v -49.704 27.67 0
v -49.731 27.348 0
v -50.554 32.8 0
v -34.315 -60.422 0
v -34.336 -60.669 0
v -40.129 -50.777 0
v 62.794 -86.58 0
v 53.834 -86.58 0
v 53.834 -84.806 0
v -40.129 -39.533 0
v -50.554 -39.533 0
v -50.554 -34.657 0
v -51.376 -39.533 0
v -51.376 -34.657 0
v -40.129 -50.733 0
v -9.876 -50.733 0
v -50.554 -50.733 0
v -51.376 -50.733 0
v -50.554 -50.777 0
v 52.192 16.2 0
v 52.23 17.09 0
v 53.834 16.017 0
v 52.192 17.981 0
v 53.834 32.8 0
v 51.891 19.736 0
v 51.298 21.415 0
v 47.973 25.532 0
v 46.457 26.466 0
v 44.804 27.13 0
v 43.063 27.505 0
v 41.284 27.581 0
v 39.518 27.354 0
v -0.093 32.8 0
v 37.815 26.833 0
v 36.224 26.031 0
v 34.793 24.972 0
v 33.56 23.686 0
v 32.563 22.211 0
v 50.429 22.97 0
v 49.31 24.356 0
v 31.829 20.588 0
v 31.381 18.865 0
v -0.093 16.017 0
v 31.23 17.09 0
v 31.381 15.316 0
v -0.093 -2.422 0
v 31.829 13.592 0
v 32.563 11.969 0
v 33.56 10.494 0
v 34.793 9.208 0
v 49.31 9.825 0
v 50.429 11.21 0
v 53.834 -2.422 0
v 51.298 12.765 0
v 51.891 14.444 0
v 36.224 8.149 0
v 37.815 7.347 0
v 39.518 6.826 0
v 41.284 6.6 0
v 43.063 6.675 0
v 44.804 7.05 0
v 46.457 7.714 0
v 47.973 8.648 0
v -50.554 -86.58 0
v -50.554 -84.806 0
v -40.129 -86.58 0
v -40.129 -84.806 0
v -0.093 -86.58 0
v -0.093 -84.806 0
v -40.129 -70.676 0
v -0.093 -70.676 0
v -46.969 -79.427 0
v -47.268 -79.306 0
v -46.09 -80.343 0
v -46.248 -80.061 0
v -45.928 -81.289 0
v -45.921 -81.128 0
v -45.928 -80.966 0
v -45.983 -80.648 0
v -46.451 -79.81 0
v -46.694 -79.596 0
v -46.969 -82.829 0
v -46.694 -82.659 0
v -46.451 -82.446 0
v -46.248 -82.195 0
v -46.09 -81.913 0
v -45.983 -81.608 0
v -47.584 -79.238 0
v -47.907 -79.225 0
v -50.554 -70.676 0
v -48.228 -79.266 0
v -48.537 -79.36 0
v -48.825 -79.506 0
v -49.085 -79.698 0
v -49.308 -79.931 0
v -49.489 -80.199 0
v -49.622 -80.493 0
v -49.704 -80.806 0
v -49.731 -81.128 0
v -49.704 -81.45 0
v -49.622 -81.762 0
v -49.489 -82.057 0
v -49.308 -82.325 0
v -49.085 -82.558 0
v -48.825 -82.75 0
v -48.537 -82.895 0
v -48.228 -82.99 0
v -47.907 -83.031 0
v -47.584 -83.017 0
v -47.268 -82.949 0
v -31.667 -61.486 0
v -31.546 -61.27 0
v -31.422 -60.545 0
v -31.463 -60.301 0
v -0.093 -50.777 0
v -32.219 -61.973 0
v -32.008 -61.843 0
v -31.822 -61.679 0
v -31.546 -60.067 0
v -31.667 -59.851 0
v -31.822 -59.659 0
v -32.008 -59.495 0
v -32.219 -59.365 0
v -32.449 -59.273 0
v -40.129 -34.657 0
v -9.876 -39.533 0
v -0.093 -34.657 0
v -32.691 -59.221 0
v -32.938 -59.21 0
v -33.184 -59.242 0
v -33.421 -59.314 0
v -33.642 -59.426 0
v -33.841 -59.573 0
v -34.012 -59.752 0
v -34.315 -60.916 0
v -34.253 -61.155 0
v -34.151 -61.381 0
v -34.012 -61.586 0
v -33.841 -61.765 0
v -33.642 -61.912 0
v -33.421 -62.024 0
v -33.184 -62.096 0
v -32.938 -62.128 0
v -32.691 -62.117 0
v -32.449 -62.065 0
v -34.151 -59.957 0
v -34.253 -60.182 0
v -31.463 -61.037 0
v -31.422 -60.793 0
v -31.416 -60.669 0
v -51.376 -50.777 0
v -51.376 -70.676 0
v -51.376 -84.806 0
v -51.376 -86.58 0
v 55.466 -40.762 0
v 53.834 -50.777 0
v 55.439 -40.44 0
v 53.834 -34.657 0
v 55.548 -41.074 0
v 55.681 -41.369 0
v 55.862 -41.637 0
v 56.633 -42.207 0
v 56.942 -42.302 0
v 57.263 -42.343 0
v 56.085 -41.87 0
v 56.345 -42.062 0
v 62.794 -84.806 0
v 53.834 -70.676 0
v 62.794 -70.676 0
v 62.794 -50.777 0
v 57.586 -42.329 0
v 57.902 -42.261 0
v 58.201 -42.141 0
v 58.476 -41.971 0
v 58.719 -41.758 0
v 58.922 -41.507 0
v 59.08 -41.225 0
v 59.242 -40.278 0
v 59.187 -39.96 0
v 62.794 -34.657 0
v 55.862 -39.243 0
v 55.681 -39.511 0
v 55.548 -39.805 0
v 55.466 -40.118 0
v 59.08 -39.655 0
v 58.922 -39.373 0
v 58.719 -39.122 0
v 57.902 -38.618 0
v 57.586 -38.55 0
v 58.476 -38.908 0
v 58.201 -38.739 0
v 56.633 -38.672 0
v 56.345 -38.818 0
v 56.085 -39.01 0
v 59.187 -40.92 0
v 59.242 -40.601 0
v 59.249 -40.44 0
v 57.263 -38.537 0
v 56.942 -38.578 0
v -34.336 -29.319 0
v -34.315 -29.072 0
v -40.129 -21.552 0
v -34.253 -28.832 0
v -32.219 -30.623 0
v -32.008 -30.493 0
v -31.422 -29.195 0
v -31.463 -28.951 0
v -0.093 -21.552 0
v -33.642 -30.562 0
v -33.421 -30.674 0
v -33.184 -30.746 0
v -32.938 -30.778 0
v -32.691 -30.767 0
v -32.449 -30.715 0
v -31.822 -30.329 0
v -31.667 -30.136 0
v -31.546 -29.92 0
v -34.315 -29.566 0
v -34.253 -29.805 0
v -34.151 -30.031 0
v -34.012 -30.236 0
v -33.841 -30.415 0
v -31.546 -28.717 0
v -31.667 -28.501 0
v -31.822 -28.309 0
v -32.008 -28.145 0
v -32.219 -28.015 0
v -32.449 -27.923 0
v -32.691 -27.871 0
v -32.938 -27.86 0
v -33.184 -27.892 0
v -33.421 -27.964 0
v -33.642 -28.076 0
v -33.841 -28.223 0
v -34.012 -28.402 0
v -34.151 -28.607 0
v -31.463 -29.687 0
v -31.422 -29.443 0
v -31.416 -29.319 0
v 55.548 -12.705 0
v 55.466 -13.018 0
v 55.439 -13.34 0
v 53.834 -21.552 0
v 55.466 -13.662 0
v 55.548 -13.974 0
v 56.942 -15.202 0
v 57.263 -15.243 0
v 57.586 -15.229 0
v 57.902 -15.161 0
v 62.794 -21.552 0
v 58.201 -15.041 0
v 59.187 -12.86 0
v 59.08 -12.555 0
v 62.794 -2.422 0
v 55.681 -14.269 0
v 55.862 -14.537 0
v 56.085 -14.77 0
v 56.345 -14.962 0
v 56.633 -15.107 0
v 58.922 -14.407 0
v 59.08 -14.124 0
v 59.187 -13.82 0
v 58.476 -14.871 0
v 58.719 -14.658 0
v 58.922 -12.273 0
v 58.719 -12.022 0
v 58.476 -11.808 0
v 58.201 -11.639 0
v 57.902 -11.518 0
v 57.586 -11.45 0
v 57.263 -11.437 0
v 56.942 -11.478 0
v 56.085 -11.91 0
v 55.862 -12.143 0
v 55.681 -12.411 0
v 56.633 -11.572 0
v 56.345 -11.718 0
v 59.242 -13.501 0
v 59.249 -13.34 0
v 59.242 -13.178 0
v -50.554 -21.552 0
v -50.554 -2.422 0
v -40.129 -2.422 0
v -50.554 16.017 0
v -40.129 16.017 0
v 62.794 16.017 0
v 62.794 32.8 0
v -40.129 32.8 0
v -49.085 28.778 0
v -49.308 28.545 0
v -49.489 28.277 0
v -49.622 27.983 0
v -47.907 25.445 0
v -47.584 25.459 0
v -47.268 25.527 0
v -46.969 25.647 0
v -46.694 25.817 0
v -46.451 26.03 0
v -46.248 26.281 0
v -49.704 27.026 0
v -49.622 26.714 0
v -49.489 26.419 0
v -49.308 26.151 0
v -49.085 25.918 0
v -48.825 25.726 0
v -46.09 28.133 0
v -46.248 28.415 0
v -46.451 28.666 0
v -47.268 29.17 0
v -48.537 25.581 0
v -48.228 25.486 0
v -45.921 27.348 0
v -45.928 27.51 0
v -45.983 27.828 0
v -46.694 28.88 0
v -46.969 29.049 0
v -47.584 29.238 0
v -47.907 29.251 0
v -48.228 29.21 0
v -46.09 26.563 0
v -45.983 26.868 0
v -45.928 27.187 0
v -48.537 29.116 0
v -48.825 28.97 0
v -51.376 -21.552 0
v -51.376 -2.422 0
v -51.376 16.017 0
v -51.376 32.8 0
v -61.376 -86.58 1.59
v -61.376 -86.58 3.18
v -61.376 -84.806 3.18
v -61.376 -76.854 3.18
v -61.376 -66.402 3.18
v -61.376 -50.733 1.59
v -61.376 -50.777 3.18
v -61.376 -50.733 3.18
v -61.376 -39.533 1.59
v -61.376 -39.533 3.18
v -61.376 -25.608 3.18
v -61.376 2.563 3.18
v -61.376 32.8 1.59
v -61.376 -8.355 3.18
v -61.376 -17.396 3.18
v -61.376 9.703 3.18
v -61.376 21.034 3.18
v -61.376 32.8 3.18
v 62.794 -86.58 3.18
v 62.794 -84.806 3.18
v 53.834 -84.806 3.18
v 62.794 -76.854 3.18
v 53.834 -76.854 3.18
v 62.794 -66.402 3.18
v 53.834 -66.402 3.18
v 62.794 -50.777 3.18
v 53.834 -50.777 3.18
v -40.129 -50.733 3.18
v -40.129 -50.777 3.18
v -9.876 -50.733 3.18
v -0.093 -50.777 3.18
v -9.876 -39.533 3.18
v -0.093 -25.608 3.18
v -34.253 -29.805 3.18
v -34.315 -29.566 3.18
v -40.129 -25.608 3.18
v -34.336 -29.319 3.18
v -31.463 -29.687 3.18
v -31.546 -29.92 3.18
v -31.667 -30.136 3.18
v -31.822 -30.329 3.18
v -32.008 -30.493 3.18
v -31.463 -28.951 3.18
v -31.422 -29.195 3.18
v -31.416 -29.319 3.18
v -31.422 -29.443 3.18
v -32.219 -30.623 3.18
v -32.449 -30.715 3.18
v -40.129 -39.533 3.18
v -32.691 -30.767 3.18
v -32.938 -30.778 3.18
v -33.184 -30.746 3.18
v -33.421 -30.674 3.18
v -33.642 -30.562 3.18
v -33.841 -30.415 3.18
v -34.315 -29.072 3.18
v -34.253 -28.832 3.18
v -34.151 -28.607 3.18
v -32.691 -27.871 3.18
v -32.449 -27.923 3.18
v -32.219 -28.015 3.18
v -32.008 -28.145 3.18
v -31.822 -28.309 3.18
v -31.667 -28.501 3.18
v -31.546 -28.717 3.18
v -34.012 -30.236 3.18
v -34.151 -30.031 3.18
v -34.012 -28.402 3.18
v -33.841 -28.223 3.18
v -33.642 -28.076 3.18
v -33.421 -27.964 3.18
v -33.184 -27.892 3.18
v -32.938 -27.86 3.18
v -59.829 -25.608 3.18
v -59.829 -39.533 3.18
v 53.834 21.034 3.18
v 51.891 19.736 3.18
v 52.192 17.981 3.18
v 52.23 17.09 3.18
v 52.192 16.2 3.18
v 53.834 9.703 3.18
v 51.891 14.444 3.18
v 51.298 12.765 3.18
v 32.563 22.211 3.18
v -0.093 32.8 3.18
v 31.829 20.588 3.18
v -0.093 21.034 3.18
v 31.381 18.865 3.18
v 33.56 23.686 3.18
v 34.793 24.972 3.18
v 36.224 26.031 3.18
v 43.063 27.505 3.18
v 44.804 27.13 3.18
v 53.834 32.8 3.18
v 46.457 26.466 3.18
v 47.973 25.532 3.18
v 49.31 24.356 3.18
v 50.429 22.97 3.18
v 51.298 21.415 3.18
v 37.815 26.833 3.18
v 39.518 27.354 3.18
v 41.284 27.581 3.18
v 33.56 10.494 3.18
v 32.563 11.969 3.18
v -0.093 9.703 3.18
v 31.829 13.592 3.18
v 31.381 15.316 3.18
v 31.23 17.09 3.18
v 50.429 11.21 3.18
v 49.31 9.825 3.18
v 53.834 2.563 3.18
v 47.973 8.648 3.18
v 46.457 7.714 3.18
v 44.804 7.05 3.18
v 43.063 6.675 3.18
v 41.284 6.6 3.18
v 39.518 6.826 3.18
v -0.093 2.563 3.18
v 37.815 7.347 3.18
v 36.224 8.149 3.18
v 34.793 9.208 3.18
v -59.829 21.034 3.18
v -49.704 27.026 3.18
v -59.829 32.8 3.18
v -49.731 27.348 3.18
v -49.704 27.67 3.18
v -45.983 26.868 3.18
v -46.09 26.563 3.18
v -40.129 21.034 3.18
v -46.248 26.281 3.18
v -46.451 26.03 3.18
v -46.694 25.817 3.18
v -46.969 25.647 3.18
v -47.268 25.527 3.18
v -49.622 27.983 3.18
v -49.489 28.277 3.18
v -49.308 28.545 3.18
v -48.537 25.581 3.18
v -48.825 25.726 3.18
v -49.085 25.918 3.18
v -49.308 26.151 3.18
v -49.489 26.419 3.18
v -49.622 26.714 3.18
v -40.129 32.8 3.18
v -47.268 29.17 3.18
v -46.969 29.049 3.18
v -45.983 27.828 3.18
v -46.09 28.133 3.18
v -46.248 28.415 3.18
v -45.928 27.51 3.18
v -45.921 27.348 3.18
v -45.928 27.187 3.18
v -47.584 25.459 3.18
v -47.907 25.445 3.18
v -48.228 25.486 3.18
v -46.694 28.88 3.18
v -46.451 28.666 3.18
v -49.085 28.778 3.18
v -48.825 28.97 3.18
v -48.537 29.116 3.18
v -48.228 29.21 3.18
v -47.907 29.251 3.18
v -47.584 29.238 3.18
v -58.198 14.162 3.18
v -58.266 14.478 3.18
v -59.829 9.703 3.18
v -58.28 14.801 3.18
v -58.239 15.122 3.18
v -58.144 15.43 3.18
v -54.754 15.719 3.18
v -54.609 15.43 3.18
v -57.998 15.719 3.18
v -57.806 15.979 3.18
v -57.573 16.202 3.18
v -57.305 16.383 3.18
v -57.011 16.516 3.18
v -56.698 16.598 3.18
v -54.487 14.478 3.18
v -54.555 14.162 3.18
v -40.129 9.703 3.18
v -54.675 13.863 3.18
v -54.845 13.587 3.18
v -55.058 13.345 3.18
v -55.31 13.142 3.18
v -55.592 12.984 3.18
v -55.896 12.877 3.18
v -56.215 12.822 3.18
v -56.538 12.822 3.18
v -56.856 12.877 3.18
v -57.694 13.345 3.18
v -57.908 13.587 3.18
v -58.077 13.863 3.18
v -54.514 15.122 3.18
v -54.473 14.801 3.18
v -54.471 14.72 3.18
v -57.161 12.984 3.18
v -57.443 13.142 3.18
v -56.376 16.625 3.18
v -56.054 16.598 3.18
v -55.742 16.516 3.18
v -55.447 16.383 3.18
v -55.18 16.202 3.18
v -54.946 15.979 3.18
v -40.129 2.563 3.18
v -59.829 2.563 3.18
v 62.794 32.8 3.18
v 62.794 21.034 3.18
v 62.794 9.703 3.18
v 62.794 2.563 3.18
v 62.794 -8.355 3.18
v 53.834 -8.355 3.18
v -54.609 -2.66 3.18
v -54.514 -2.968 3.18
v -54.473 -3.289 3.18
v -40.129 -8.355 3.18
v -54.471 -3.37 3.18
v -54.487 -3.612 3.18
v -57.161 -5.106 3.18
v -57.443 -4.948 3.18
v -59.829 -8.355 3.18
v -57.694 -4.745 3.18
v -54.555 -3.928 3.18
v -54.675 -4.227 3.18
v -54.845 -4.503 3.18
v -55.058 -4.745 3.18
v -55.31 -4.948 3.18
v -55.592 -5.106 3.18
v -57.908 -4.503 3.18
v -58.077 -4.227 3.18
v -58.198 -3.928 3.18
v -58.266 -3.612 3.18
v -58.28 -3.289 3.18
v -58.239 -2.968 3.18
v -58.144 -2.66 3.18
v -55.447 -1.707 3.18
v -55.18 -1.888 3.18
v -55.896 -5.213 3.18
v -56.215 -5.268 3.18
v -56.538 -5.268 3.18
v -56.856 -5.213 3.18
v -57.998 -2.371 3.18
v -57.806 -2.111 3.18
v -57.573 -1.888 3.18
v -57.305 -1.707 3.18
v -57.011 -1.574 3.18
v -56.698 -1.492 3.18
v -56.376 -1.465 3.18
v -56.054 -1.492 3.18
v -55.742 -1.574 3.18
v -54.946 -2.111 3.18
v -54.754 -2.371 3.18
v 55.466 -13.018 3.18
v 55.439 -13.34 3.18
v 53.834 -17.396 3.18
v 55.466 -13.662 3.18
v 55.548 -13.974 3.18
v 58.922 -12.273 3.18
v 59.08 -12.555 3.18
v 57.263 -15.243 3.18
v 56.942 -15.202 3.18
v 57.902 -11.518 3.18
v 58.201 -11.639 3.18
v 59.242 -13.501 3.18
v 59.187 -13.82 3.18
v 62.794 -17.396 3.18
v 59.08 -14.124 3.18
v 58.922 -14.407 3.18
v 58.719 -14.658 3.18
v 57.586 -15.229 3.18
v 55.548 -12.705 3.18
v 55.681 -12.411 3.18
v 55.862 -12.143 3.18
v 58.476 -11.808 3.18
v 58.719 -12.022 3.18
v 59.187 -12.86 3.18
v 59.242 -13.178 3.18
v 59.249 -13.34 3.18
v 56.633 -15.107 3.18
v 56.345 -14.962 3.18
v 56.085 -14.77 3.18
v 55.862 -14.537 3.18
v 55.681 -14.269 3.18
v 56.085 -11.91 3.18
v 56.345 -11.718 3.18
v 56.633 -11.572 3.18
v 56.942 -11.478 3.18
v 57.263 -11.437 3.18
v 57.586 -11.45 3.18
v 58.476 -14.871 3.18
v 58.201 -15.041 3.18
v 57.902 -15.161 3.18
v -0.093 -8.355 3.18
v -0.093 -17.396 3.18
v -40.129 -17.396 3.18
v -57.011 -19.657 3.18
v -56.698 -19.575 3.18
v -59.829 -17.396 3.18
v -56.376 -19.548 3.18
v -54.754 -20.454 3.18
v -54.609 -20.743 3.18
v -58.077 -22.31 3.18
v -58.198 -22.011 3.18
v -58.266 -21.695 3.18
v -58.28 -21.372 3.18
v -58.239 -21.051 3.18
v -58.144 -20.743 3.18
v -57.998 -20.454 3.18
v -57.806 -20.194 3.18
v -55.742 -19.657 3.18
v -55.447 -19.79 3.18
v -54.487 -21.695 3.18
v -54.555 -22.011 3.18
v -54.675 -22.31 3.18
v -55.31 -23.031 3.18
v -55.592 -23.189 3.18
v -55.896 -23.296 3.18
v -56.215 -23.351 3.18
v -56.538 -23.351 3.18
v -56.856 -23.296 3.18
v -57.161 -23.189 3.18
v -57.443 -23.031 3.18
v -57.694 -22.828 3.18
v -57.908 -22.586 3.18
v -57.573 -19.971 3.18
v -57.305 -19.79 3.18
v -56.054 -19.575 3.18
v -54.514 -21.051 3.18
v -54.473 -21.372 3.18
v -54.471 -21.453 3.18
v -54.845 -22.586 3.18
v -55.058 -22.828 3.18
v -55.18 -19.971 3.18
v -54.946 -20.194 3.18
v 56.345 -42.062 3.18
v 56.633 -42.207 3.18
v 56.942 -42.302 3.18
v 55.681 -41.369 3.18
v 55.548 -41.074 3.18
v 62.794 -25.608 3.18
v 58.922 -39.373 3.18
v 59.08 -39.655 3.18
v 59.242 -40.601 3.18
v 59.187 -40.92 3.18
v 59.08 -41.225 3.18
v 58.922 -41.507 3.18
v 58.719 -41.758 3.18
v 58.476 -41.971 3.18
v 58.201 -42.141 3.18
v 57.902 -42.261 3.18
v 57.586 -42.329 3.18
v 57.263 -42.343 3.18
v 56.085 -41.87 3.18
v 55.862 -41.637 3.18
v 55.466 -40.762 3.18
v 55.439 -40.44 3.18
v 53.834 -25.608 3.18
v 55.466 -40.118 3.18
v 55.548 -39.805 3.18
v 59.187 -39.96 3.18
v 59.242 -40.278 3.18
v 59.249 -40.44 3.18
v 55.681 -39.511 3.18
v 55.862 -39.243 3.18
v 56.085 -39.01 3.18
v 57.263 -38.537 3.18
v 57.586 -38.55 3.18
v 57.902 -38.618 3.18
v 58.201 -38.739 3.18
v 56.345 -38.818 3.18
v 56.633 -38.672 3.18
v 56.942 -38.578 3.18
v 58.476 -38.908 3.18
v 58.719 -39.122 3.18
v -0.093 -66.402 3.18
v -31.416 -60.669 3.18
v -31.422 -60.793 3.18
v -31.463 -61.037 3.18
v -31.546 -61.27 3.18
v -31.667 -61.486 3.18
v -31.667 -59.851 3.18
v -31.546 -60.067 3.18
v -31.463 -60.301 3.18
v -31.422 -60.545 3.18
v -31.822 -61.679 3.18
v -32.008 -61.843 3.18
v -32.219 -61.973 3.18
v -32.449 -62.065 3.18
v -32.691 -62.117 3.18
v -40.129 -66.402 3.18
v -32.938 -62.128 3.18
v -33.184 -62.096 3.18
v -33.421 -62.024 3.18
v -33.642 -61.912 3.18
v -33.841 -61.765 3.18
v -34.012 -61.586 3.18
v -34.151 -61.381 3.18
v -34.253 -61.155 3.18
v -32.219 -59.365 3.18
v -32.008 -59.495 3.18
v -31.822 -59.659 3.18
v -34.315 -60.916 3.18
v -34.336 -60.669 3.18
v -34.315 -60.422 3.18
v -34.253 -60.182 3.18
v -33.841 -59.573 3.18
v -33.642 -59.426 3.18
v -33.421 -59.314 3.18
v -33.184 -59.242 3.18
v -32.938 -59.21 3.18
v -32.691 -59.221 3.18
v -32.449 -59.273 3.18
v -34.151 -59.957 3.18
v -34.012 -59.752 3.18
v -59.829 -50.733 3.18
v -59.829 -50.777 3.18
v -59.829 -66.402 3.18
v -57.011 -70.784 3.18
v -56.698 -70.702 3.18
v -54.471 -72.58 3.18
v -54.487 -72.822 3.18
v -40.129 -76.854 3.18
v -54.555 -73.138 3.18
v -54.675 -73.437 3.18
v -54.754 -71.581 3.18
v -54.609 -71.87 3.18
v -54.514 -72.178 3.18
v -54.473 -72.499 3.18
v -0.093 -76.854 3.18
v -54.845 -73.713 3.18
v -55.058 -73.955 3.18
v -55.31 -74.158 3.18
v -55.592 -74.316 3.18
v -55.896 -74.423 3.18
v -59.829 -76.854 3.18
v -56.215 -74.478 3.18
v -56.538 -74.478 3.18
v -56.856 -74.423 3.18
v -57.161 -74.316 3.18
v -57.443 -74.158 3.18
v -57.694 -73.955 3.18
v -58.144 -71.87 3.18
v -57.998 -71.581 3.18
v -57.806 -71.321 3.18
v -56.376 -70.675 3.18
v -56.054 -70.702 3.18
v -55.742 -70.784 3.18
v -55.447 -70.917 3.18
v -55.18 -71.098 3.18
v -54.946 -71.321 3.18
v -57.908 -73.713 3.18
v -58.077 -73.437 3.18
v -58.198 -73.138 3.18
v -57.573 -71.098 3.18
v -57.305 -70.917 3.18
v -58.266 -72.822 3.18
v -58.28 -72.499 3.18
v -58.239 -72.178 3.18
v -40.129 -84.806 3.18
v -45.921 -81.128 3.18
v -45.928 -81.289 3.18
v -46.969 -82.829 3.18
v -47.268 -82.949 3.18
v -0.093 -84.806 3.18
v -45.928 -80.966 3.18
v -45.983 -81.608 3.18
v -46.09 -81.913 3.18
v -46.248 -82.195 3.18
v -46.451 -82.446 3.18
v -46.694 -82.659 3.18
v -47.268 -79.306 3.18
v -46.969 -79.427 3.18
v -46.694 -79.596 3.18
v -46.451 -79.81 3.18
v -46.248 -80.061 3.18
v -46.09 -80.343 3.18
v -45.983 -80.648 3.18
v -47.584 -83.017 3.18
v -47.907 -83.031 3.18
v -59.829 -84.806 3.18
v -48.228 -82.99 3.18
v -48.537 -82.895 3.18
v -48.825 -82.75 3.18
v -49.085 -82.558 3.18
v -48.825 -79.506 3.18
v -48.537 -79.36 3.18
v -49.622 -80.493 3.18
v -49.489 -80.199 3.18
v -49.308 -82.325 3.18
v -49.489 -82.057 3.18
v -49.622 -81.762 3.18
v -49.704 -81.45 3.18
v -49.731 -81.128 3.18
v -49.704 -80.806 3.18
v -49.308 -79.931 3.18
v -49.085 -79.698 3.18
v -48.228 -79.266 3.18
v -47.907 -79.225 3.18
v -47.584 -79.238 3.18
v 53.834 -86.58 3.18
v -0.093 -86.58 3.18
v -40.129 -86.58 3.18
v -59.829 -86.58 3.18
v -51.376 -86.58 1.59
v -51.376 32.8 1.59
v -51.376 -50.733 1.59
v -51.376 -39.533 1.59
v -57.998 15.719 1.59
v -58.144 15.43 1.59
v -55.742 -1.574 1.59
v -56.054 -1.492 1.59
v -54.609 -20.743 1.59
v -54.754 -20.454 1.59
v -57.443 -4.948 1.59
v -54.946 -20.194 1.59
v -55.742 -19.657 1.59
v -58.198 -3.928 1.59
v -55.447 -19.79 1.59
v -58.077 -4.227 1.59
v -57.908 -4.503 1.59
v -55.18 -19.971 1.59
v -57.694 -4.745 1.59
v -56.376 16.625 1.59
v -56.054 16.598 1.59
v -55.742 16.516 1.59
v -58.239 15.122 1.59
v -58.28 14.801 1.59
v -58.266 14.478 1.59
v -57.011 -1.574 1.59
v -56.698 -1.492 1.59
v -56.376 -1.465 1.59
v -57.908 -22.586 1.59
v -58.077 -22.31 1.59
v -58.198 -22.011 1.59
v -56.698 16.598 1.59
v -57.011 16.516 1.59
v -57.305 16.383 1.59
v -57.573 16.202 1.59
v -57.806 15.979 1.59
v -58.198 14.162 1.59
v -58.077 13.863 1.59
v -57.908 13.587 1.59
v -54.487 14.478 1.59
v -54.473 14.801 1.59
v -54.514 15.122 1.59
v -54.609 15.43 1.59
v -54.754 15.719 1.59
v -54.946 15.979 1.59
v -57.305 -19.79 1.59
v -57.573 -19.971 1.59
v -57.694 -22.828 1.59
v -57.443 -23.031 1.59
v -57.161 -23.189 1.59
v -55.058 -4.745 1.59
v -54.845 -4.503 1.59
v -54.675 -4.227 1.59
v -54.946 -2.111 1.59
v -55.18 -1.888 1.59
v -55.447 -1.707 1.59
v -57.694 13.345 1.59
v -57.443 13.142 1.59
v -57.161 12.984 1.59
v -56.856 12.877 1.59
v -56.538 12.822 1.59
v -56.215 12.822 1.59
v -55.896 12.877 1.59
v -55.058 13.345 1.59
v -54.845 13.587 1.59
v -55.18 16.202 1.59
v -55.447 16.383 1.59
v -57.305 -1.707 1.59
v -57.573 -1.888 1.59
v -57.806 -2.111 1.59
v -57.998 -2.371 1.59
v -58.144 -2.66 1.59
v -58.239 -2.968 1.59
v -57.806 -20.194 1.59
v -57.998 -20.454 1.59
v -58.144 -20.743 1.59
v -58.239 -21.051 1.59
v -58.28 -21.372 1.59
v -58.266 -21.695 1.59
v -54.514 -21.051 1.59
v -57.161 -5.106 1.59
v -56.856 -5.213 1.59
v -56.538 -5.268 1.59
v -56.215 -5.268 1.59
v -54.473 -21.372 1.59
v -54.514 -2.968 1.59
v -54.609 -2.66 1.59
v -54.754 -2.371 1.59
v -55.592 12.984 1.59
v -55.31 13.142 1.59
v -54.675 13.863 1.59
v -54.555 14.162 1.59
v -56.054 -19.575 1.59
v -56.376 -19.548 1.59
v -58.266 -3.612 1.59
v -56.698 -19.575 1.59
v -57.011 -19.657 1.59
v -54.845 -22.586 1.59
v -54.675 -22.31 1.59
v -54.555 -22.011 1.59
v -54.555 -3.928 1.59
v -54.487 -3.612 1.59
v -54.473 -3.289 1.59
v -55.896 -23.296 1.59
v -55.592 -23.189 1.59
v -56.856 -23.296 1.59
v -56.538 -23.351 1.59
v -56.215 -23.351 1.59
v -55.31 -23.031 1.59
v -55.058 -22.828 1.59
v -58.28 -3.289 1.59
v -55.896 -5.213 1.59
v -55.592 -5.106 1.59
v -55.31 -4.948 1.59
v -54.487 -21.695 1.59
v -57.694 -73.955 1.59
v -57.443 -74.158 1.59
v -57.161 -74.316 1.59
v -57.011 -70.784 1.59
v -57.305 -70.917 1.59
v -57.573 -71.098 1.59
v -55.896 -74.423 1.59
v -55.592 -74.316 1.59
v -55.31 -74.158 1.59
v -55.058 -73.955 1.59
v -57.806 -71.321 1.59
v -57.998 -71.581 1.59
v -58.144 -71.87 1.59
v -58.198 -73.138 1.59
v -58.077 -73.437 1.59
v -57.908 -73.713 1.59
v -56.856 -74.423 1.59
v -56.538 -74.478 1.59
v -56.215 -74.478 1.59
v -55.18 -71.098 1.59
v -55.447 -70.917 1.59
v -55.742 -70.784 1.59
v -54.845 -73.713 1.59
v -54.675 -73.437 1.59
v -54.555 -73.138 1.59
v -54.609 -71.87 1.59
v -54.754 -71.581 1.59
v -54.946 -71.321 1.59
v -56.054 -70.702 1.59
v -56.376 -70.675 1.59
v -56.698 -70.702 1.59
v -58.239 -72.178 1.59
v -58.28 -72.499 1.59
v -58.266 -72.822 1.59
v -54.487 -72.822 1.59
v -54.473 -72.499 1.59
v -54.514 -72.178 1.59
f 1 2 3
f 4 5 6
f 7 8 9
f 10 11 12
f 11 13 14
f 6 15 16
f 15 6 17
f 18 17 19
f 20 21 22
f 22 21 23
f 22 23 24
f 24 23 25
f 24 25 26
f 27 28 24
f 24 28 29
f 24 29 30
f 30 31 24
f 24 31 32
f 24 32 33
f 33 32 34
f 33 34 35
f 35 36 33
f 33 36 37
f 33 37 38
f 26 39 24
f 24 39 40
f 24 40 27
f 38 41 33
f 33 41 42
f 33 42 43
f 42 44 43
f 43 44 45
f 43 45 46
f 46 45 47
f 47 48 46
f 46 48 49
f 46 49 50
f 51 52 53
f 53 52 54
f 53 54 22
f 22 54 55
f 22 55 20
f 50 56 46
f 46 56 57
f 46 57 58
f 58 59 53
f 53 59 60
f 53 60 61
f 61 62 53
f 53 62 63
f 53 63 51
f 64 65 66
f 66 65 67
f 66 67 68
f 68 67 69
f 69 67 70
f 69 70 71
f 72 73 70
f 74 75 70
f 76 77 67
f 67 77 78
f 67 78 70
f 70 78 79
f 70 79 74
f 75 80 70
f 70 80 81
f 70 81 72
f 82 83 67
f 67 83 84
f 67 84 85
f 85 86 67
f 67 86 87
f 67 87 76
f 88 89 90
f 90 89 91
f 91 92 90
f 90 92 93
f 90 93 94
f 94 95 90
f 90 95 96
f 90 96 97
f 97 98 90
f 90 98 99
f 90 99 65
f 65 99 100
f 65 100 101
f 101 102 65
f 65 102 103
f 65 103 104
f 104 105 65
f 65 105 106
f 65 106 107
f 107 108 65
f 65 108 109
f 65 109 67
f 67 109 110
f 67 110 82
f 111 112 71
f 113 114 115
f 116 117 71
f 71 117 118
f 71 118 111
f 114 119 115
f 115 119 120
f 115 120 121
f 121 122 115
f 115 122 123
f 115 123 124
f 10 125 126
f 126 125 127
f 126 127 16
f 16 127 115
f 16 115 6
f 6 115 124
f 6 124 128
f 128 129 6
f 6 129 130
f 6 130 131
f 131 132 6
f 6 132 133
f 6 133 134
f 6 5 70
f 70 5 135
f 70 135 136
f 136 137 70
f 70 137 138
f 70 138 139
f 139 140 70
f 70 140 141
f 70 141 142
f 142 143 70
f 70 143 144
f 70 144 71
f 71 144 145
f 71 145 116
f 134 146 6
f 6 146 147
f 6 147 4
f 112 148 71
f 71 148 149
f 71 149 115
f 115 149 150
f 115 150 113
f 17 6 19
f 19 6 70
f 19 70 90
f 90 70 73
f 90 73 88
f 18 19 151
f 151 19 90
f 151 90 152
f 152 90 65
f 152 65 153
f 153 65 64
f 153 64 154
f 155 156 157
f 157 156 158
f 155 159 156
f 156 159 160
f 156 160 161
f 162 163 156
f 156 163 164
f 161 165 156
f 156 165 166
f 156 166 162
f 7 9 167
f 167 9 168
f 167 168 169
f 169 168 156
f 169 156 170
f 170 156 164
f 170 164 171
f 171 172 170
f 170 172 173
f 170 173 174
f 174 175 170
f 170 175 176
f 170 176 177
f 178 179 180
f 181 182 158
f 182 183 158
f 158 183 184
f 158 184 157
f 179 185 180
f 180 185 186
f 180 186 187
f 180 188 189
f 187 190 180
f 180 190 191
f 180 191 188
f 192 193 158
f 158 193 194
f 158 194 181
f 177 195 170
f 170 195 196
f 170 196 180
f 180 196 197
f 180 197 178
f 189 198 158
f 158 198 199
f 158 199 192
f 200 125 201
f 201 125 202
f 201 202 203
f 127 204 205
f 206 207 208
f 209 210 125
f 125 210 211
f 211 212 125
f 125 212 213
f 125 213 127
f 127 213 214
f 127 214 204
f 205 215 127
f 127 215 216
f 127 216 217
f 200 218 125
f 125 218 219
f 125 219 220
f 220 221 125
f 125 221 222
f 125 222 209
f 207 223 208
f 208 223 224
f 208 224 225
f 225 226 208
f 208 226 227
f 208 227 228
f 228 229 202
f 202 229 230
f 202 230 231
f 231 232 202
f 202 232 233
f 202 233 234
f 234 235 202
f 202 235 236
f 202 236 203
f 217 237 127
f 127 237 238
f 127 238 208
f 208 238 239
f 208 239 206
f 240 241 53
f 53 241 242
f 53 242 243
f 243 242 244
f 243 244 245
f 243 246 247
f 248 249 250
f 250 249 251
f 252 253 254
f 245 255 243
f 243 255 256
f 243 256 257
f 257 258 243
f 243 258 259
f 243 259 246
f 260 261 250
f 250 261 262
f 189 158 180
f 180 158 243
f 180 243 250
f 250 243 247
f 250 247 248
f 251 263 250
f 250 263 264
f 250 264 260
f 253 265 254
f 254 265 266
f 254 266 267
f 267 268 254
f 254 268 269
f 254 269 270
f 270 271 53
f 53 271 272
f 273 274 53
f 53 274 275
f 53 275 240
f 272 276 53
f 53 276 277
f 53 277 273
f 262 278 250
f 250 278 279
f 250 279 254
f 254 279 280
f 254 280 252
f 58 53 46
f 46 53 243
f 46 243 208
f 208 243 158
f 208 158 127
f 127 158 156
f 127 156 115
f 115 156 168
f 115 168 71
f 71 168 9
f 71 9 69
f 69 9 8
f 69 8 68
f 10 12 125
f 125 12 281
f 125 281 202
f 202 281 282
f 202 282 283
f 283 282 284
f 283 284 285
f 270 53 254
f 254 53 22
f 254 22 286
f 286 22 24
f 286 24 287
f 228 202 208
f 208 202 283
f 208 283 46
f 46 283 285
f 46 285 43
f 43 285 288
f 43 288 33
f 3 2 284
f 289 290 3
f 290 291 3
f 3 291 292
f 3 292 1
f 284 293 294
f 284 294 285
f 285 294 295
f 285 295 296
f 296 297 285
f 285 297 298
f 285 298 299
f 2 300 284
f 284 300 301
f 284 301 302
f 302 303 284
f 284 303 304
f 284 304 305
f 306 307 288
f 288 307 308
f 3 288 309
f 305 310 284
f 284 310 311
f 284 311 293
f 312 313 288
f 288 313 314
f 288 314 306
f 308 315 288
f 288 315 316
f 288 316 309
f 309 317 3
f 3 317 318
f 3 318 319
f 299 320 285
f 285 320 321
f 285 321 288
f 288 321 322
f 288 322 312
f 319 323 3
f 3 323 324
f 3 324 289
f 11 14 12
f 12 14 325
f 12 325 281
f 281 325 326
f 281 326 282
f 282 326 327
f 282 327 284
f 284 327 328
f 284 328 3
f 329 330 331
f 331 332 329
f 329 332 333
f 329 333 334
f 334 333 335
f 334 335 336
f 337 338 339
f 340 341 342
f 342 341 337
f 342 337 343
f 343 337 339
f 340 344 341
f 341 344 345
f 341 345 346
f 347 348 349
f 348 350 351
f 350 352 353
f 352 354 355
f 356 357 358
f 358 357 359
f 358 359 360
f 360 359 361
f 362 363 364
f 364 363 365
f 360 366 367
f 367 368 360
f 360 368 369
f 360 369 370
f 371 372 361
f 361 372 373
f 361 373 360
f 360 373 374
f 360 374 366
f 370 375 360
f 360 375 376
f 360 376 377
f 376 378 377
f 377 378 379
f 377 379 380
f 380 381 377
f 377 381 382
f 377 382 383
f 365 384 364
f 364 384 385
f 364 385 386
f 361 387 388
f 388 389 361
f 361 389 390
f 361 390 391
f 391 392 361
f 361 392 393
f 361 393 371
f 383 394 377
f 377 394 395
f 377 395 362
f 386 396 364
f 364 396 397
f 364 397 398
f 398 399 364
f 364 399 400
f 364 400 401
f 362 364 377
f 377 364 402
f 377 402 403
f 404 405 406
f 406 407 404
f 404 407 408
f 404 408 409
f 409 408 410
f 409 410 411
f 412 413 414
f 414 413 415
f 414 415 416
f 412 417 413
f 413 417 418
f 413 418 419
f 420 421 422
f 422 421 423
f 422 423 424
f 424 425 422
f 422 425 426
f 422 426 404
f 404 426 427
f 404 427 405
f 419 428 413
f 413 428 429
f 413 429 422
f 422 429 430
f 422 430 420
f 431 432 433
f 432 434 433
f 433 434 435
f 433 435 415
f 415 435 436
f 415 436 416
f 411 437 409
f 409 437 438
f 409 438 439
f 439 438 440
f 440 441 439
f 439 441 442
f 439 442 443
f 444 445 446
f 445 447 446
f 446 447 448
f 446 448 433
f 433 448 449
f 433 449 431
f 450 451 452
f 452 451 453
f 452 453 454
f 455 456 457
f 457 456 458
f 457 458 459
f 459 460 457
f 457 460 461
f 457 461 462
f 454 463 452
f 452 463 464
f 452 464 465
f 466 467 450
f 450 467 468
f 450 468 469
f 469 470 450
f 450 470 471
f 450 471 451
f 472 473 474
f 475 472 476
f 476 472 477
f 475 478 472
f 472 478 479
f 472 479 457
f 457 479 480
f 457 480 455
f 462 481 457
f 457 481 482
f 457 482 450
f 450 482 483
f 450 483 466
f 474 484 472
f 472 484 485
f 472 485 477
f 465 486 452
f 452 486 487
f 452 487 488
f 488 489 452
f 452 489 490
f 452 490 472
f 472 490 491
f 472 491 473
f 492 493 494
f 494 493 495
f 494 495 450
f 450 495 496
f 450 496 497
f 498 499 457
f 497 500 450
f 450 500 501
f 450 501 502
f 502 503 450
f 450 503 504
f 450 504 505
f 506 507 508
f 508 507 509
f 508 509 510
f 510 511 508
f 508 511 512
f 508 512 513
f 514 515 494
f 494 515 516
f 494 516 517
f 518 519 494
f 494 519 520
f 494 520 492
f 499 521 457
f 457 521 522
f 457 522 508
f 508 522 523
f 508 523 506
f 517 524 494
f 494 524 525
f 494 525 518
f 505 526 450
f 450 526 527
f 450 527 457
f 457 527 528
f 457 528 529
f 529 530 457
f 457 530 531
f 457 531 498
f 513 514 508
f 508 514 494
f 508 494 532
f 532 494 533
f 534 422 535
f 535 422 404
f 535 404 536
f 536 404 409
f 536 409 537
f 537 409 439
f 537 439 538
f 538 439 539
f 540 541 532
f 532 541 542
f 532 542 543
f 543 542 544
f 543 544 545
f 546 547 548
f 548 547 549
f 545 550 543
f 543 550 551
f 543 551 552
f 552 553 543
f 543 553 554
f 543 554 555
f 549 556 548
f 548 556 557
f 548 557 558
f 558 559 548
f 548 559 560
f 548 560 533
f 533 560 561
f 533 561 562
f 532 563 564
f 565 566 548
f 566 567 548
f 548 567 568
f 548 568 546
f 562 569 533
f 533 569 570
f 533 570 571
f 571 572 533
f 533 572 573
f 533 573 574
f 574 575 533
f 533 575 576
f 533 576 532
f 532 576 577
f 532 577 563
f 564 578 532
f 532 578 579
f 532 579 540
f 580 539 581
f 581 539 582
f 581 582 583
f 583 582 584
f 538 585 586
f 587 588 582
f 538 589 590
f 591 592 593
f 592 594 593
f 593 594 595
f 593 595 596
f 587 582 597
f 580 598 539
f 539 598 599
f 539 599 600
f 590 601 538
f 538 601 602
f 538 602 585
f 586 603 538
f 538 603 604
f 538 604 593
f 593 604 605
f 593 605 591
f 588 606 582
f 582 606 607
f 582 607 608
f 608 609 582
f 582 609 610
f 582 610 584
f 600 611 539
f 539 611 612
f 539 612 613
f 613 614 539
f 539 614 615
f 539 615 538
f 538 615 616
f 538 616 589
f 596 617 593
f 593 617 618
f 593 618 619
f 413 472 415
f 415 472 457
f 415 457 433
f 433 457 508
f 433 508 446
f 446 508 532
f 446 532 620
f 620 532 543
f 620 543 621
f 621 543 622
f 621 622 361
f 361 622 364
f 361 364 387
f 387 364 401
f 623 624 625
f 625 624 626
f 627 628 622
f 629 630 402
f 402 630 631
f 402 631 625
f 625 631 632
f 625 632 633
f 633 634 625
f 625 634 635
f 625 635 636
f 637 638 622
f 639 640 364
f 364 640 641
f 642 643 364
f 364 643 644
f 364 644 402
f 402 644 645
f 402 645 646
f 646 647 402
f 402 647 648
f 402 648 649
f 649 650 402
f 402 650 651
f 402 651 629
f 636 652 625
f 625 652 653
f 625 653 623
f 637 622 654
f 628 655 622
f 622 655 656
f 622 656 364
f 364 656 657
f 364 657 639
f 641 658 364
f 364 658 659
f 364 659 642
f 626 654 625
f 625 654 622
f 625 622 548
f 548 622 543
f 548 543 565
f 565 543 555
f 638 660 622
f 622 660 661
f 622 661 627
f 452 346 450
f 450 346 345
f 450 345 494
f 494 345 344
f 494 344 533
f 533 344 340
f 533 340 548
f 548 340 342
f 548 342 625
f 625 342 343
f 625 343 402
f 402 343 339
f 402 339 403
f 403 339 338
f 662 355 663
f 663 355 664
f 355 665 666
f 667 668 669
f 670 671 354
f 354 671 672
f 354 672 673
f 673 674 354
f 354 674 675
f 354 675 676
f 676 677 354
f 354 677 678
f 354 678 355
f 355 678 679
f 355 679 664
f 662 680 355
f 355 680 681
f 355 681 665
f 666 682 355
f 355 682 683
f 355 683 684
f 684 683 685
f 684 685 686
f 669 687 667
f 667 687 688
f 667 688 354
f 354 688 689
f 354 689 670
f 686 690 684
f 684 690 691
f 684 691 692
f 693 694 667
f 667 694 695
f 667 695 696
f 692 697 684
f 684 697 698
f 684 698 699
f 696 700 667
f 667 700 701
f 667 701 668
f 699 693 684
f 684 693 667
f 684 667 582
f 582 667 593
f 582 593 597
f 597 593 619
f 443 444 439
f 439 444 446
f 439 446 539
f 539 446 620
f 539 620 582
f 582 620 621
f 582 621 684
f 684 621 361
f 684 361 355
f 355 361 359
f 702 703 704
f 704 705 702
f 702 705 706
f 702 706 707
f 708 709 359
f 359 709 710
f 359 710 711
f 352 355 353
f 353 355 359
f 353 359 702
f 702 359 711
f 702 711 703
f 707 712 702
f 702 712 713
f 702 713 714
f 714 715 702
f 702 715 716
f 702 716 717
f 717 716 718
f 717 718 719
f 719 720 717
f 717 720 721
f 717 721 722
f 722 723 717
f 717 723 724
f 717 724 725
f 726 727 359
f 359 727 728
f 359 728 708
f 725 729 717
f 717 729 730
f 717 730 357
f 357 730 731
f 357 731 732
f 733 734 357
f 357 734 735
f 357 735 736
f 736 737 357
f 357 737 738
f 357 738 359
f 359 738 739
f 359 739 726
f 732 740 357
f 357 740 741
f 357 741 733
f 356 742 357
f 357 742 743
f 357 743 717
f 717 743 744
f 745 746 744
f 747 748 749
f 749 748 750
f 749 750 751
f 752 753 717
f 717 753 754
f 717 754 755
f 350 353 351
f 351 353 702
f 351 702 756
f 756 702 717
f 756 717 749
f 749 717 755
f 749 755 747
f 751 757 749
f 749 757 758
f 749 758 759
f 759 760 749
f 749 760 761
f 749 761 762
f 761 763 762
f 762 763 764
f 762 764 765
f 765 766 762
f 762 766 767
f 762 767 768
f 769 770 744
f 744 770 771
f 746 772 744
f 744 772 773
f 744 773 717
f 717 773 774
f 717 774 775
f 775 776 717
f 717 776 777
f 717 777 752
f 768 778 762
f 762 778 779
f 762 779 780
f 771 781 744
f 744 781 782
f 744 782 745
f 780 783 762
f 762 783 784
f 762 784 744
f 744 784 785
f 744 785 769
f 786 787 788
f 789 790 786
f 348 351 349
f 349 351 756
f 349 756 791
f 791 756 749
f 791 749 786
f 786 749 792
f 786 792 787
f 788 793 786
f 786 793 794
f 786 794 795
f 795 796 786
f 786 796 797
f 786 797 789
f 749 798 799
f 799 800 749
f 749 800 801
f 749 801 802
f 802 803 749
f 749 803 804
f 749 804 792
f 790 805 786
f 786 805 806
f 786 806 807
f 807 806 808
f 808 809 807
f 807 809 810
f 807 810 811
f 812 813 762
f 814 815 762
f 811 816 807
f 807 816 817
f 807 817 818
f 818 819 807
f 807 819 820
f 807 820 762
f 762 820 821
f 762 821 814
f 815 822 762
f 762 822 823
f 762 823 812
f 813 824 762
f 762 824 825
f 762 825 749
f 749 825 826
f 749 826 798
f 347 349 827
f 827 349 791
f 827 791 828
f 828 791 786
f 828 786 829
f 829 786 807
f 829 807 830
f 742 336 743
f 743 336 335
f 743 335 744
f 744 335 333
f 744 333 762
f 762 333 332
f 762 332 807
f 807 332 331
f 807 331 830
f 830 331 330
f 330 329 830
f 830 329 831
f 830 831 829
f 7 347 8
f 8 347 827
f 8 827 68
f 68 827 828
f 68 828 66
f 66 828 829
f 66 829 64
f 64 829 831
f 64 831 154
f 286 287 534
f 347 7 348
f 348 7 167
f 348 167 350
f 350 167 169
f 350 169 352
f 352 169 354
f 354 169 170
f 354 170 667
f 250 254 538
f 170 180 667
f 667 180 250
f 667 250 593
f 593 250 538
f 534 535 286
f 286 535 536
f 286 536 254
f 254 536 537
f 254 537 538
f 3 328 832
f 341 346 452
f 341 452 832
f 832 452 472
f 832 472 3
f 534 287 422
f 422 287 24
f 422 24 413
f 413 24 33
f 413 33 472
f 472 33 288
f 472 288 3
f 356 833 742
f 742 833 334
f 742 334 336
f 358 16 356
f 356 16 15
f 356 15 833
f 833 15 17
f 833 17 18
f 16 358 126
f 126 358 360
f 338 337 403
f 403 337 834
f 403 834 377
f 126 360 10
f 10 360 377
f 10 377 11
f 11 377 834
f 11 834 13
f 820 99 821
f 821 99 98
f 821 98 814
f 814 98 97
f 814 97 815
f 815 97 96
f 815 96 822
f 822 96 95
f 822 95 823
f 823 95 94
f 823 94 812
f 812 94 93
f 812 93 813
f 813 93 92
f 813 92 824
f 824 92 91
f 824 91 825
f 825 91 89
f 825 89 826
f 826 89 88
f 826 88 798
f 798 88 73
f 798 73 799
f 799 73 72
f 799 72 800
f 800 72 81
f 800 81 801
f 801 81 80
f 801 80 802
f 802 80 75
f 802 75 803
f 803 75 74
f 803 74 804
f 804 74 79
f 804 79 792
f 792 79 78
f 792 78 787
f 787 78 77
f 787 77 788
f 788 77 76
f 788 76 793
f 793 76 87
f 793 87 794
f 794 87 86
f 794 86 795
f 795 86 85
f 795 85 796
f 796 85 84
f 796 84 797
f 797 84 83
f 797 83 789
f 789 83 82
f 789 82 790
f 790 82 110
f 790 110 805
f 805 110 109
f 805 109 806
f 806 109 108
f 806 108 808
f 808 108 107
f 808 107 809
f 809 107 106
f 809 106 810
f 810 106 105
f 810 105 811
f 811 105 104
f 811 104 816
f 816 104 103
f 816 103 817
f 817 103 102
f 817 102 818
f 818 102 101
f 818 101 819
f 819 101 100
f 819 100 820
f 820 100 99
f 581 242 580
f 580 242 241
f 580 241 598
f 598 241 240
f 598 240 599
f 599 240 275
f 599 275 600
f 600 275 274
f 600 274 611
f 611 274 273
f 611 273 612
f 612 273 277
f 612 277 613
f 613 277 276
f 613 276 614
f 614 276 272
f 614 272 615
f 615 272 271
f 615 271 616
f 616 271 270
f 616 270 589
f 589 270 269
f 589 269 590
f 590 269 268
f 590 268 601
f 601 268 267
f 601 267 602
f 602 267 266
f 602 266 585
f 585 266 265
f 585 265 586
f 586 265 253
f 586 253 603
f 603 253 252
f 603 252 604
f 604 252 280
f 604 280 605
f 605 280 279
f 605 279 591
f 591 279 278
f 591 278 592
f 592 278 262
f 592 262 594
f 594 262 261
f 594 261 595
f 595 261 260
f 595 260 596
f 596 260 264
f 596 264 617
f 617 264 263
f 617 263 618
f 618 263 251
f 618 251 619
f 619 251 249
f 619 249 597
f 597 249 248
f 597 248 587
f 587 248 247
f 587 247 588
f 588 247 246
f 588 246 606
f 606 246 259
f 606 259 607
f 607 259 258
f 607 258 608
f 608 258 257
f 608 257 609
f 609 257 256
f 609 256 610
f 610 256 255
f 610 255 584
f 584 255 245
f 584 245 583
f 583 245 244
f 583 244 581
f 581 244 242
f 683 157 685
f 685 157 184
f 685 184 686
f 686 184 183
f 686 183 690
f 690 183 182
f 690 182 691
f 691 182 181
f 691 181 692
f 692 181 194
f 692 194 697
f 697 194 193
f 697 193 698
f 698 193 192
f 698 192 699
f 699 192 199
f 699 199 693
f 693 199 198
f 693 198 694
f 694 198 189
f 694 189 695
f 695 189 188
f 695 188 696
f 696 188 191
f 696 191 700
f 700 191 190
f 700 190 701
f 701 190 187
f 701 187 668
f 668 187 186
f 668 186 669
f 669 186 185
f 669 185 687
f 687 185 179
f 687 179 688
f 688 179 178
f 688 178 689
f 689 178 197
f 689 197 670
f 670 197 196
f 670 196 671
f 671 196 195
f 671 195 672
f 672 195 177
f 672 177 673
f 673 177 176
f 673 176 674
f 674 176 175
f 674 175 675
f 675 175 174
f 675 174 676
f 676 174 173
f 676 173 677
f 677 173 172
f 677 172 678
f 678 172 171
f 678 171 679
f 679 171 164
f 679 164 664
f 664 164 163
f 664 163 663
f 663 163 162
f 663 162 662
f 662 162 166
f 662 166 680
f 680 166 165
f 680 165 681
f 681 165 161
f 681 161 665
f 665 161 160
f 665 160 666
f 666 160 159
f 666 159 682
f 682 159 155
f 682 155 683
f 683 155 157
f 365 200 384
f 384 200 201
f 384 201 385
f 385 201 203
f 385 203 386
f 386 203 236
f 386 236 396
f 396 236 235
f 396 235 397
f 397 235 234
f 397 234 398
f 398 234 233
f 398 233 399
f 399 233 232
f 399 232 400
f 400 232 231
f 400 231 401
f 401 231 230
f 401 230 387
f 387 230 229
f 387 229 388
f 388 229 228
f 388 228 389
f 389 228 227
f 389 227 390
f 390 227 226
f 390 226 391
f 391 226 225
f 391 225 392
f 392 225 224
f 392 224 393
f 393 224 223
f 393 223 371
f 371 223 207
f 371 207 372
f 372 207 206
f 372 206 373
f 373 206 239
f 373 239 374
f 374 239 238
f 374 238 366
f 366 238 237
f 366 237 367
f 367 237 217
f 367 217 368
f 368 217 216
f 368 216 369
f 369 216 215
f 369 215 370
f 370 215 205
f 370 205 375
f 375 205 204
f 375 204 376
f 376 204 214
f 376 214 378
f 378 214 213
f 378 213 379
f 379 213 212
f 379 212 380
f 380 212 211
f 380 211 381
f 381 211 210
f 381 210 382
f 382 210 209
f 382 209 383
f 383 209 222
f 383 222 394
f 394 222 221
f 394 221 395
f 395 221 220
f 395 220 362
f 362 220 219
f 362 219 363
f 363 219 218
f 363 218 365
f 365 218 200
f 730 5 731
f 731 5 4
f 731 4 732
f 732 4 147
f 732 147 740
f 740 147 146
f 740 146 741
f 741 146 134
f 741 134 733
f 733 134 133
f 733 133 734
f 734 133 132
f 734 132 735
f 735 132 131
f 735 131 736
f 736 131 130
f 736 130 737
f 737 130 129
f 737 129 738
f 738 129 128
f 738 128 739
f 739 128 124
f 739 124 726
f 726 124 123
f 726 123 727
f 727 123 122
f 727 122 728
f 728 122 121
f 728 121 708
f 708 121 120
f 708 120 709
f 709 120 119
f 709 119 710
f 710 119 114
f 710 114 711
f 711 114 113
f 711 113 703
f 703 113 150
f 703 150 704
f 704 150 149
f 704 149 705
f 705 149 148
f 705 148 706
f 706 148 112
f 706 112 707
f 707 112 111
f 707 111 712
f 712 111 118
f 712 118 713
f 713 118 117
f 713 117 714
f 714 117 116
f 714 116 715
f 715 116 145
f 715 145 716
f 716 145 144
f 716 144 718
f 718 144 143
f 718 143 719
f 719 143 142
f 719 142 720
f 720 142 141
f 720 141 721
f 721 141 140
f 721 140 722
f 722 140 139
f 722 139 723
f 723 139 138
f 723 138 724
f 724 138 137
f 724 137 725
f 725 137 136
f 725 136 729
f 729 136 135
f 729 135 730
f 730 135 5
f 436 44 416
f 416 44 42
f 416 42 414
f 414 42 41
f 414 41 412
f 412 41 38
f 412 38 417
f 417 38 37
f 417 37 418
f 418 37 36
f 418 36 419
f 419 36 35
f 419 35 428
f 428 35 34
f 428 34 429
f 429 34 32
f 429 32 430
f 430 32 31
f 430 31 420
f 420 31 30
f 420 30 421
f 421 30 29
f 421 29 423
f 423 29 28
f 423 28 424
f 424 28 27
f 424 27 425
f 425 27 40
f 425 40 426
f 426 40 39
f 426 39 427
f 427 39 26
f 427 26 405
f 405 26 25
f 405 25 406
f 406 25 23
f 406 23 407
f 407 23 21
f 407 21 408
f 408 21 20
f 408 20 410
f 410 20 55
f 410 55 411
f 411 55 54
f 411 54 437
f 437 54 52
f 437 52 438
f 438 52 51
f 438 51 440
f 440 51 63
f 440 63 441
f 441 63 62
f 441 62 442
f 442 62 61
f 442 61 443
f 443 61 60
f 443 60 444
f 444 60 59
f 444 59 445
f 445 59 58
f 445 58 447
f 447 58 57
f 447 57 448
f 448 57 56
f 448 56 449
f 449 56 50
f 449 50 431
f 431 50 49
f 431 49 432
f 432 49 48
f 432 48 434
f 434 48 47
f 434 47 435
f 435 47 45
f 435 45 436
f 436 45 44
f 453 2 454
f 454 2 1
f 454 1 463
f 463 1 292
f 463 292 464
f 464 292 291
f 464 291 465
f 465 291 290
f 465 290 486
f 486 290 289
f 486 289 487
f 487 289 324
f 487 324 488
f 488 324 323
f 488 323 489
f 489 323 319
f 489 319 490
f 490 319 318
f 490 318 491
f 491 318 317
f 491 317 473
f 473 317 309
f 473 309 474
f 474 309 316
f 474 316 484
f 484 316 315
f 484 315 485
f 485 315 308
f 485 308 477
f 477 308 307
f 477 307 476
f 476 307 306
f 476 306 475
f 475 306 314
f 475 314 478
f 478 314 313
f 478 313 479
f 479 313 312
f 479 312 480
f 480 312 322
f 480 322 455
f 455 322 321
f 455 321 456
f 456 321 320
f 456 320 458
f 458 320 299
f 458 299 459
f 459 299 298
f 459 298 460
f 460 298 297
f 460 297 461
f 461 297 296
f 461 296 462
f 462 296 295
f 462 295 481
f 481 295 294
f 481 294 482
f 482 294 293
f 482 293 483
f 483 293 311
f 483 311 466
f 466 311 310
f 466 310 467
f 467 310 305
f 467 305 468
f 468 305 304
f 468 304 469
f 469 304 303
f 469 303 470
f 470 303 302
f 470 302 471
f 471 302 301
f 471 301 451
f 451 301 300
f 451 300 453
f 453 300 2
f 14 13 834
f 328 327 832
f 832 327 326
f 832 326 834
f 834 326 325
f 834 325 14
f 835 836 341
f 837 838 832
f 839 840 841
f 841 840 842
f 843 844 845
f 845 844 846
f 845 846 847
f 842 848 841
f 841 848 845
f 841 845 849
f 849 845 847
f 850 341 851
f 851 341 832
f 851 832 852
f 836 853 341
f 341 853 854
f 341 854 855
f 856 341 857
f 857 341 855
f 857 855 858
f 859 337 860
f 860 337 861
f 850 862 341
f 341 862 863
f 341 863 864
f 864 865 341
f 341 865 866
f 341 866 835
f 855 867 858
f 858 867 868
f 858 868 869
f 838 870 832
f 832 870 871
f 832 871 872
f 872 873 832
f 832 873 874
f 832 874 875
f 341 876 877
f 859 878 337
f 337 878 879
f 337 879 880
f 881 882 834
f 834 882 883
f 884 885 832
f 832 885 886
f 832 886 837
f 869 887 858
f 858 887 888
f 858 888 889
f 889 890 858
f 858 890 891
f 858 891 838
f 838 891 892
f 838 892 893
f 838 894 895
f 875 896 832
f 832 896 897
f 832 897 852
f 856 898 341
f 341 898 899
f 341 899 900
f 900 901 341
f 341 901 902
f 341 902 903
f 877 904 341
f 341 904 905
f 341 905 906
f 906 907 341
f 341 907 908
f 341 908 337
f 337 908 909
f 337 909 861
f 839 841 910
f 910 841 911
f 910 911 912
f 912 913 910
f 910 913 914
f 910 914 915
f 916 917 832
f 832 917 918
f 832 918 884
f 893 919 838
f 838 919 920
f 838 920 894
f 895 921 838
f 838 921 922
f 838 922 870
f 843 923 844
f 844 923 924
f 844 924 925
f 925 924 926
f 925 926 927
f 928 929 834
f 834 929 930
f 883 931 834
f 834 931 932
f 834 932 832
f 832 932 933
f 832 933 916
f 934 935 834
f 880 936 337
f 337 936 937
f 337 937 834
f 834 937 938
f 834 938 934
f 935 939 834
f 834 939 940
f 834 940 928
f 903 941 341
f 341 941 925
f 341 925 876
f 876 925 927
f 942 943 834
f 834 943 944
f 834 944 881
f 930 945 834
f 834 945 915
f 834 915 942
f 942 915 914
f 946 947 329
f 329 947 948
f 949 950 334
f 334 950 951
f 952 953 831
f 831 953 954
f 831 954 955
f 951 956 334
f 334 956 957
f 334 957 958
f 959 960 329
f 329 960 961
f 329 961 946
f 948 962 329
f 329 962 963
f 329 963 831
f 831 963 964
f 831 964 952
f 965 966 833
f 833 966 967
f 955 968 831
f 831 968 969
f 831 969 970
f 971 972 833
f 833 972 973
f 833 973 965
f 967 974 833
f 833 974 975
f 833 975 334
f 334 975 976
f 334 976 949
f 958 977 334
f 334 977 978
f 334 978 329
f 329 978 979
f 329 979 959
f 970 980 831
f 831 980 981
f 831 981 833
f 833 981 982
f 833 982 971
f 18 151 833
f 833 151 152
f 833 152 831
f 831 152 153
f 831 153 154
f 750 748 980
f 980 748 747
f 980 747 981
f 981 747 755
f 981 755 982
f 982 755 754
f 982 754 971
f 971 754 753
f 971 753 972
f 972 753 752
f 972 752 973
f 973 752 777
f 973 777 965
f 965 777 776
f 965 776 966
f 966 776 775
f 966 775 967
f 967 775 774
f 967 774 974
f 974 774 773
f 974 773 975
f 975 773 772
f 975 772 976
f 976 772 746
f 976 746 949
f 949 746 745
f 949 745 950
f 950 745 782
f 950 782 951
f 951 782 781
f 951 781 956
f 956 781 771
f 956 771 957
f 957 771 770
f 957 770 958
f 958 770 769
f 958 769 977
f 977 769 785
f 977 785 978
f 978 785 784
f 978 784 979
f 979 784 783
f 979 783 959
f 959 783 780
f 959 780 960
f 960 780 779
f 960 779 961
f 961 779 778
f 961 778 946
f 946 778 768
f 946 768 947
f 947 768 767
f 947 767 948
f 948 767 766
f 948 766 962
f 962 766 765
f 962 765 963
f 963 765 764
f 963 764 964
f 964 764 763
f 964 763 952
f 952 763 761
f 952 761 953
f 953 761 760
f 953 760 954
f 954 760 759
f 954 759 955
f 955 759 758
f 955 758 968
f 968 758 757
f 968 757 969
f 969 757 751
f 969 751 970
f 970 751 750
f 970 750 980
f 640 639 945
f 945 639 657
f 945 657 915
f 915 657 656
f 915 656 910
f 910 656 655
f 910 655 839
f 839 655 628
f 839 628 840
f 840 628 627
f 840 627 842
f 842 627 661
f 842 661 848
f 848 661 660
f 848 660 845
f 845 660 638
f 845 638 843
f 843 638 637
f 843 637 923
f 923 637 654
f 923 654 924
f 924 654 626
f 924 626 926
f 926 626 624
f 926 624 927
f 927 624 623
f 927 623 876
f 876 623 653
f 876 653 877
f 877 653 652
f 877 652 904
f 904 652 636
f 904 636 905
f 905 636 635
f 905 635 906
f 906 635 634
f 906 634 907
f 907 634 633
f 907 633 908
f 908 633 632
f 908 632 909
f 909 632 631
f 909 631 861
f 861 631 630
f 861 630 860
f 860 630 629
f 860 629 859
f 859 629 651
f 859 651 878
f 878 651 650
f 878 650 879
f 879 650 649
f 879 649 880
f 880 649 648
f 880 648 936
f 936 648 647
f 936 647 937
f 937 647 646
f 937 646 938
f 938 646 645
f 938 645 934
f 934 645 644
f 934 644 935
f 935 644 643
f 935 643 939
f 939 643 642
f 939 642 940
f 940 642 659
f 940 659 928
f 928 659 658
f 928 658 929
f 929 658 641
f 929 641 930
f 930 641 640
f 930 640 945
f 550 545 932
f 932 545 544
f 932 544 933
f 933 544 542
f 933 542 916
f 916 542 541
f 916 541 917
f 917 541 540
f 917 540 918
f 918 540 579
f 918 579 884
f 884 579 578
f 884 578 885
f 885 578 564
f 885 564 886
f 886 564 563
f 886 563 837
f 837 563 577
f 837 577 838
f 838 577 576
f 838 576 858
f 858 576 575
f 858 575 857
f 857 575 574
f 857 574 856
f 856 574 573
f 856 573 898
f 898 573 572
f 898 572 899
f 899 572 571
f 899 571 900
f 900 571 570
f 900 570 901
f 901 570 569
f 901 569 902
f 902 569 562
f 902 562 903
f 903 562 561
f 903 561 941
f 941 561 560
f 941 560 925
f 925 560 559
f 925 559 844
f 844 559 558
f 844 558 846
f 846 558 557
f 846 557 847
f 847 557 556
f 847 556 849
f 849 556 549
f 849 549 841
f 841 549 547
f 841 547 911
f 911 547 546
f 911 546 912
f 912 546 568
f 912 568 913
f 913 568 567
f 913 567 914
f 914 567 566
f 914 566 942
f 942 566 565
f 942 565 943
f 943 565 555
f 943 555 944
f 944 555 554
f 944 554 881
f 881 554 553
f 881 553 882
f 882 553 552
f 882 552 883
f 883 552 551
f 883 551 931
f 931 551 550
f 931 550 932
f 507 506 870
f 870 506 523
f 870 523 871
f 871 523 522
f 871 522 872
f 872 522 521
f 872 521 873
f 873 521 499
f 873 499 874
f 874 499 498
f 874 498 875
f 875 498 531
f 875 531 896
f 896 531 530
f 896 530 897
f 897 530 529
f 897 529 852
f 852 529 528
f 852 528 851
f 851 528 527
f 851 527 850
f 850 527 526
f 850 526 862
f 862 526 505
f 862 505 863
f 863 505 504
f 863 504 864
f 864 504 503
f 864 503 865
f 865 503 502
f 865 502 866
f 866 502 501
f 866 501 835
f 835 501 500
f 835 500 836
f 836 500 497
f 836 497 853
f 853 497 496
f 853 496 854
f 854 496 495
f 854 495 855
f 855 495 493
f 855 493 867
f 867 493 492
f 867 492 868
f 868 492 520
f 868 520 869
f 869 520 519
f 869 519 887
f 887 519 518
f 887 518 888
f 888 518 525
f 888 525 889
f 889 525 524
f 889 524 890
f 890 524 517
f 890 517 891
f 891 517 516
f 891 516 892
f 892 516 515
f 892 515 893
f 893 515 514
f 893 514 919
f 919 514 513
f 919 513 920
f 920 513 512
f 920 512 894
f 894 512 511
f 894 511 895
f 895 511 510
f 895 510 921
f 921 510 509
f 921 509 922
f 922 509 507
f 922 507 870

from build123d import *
from OCP.BRepAlgoAPI import BRepAlgoAPI_Cut
from OCP.TopTools import TopTools_ListOfShape

# Parameters (mm, degrees)
SKETCH2_W           = 124.17
SKETCH2_H           = 119.38
BOSS_EXTRUDE1_DEPTH = 3.18
SKETCH3_R           = 1.46
SKETCH3_R_2         = 1.905
SKETCH3_R_3         = 10.5
SKETCH3_W           = 51.5
SKETCH3_H           = 11.2
CUT_EXTRUDE1_DEPTH  = 23.18
SKETCH5_W           = 1.59
SKETCH5_H           = 120
CUT_EXTRUDE2_DEPTH  = 10
SKETCH6_R           = 1.905
CUT_EXTRUDE3_DEPTH  = 10


with BuildPart() as part:
    # Sketch2 → Boss-Extrude1 (new body)
    with BuildSketch(Plane(origin=(0, -1.061487407, 0), x_dir=(1, 0, 0), z_dir=(0, 0, 1))):
        with Locations((0.708693295, -25.828343308)):
            Rectangle(SKETCH2_W, SKETCH2_H)
    extrude(amount=BOSS_EXTRUDE1_DEPTH)

    # Sketch3 → Cut-Extrude1 (cut)
    with BuildSketch(Plane.XY):
        with Locations((-32.876306705, -60.668830715)):
            Circle(SKETCH3_R)
        with Locations((-32.876306705, -29.318830715)):
            Circle(SKETCH3_R)
        with Locations((-47.826306705, 27.348169285)):
            Circle(SKETCH3_R_2)
        with Locations((41.729693295, 17.090169285)):
            Circle(SKETCH3_R_3)
        with Locations((-47.826306705, -81.127830715)):
            Circle(SKETCH3_R_2)
        with Locations((57.343693295, -13.339830715)):
            Circle(SKETCH3_R_2)
        with Locations((57.343693295, -40.439830715)):
            Circle(SKETCH3_R_2)
        with Locations((-35.626306705, -45.132830715)):
            Rectangle(SKETCH3_W, SKETCH3_H)
    extrude(amount=CUT_EXTRUDE1_DEPTH, mode=Mode.SUBTRACT)


with BuildPart() as cut_extrude2_tool:
    # Sketch5 → Cut-Extrude2 (new body)
    with BuildSketch(Plane.ZY.offset(61.376306705)):
        with Locations((0.794999799, -27.199831736)):
            Rectangle(SKETCH5_W, SKETCH5_H)
    extrude(amount=-CUT_EXTRUDE2_DEPTH)


with BuildPart() as part_1:
    add(part.part)

    # Cut-Extrude2: cut by cut_extrude2_tool, with a tolerance
    cut_extrude2_stock = TopTools_ListOfShape()
    cut_extrude2_stock.Append(part_1.part.wrapped)
    cut_extrude2_tools = TopTools_ListOfShape()
    cut_extrude2_tools.Append(cut_extrude2_tool.part.wrapped)
    cut_extrude2_cut = BRepAlgoAPI_Cut()
    cut_extrude2_cut.SetArguments(cut_extrude2_stock)
    cut_extrude2_cut.SetTools(cut_extrude2_tools)
    cut_extrude2_cut.SetFuzzyValue(0.00001)
    cut_extrude2_cut.Build()
    add(Compound.cast(cut_extrude2_cut.Shape()).solids(), mode=Mode.REPLACE)

    # Sketch6 → Cut-Extrude3 (cut)
    with BuildSketch(Plane(origin=(0, 0, 1.589999799), x_dir=(-1, 0, 0), z_dir=(0, 0, -1))):
        with Locations((56.376306705, 14.720168264)):
            Circle(SKETCH6_R)
        with Locations((56.376306705, -3.369831736)):
            Circle(SKETCH6_R)
        with Locations((56.376306705, -21.452830715)):
            Circle(SKETCH6_R)
        with Locations((56.376306705, -72.579830715)):
            Circle(SKETCH6_R)
    extrude(amount=-CUT_EXTRUDE3_DEPTH, mode=Mode.SUBTRACT)


solid = part_1.part
